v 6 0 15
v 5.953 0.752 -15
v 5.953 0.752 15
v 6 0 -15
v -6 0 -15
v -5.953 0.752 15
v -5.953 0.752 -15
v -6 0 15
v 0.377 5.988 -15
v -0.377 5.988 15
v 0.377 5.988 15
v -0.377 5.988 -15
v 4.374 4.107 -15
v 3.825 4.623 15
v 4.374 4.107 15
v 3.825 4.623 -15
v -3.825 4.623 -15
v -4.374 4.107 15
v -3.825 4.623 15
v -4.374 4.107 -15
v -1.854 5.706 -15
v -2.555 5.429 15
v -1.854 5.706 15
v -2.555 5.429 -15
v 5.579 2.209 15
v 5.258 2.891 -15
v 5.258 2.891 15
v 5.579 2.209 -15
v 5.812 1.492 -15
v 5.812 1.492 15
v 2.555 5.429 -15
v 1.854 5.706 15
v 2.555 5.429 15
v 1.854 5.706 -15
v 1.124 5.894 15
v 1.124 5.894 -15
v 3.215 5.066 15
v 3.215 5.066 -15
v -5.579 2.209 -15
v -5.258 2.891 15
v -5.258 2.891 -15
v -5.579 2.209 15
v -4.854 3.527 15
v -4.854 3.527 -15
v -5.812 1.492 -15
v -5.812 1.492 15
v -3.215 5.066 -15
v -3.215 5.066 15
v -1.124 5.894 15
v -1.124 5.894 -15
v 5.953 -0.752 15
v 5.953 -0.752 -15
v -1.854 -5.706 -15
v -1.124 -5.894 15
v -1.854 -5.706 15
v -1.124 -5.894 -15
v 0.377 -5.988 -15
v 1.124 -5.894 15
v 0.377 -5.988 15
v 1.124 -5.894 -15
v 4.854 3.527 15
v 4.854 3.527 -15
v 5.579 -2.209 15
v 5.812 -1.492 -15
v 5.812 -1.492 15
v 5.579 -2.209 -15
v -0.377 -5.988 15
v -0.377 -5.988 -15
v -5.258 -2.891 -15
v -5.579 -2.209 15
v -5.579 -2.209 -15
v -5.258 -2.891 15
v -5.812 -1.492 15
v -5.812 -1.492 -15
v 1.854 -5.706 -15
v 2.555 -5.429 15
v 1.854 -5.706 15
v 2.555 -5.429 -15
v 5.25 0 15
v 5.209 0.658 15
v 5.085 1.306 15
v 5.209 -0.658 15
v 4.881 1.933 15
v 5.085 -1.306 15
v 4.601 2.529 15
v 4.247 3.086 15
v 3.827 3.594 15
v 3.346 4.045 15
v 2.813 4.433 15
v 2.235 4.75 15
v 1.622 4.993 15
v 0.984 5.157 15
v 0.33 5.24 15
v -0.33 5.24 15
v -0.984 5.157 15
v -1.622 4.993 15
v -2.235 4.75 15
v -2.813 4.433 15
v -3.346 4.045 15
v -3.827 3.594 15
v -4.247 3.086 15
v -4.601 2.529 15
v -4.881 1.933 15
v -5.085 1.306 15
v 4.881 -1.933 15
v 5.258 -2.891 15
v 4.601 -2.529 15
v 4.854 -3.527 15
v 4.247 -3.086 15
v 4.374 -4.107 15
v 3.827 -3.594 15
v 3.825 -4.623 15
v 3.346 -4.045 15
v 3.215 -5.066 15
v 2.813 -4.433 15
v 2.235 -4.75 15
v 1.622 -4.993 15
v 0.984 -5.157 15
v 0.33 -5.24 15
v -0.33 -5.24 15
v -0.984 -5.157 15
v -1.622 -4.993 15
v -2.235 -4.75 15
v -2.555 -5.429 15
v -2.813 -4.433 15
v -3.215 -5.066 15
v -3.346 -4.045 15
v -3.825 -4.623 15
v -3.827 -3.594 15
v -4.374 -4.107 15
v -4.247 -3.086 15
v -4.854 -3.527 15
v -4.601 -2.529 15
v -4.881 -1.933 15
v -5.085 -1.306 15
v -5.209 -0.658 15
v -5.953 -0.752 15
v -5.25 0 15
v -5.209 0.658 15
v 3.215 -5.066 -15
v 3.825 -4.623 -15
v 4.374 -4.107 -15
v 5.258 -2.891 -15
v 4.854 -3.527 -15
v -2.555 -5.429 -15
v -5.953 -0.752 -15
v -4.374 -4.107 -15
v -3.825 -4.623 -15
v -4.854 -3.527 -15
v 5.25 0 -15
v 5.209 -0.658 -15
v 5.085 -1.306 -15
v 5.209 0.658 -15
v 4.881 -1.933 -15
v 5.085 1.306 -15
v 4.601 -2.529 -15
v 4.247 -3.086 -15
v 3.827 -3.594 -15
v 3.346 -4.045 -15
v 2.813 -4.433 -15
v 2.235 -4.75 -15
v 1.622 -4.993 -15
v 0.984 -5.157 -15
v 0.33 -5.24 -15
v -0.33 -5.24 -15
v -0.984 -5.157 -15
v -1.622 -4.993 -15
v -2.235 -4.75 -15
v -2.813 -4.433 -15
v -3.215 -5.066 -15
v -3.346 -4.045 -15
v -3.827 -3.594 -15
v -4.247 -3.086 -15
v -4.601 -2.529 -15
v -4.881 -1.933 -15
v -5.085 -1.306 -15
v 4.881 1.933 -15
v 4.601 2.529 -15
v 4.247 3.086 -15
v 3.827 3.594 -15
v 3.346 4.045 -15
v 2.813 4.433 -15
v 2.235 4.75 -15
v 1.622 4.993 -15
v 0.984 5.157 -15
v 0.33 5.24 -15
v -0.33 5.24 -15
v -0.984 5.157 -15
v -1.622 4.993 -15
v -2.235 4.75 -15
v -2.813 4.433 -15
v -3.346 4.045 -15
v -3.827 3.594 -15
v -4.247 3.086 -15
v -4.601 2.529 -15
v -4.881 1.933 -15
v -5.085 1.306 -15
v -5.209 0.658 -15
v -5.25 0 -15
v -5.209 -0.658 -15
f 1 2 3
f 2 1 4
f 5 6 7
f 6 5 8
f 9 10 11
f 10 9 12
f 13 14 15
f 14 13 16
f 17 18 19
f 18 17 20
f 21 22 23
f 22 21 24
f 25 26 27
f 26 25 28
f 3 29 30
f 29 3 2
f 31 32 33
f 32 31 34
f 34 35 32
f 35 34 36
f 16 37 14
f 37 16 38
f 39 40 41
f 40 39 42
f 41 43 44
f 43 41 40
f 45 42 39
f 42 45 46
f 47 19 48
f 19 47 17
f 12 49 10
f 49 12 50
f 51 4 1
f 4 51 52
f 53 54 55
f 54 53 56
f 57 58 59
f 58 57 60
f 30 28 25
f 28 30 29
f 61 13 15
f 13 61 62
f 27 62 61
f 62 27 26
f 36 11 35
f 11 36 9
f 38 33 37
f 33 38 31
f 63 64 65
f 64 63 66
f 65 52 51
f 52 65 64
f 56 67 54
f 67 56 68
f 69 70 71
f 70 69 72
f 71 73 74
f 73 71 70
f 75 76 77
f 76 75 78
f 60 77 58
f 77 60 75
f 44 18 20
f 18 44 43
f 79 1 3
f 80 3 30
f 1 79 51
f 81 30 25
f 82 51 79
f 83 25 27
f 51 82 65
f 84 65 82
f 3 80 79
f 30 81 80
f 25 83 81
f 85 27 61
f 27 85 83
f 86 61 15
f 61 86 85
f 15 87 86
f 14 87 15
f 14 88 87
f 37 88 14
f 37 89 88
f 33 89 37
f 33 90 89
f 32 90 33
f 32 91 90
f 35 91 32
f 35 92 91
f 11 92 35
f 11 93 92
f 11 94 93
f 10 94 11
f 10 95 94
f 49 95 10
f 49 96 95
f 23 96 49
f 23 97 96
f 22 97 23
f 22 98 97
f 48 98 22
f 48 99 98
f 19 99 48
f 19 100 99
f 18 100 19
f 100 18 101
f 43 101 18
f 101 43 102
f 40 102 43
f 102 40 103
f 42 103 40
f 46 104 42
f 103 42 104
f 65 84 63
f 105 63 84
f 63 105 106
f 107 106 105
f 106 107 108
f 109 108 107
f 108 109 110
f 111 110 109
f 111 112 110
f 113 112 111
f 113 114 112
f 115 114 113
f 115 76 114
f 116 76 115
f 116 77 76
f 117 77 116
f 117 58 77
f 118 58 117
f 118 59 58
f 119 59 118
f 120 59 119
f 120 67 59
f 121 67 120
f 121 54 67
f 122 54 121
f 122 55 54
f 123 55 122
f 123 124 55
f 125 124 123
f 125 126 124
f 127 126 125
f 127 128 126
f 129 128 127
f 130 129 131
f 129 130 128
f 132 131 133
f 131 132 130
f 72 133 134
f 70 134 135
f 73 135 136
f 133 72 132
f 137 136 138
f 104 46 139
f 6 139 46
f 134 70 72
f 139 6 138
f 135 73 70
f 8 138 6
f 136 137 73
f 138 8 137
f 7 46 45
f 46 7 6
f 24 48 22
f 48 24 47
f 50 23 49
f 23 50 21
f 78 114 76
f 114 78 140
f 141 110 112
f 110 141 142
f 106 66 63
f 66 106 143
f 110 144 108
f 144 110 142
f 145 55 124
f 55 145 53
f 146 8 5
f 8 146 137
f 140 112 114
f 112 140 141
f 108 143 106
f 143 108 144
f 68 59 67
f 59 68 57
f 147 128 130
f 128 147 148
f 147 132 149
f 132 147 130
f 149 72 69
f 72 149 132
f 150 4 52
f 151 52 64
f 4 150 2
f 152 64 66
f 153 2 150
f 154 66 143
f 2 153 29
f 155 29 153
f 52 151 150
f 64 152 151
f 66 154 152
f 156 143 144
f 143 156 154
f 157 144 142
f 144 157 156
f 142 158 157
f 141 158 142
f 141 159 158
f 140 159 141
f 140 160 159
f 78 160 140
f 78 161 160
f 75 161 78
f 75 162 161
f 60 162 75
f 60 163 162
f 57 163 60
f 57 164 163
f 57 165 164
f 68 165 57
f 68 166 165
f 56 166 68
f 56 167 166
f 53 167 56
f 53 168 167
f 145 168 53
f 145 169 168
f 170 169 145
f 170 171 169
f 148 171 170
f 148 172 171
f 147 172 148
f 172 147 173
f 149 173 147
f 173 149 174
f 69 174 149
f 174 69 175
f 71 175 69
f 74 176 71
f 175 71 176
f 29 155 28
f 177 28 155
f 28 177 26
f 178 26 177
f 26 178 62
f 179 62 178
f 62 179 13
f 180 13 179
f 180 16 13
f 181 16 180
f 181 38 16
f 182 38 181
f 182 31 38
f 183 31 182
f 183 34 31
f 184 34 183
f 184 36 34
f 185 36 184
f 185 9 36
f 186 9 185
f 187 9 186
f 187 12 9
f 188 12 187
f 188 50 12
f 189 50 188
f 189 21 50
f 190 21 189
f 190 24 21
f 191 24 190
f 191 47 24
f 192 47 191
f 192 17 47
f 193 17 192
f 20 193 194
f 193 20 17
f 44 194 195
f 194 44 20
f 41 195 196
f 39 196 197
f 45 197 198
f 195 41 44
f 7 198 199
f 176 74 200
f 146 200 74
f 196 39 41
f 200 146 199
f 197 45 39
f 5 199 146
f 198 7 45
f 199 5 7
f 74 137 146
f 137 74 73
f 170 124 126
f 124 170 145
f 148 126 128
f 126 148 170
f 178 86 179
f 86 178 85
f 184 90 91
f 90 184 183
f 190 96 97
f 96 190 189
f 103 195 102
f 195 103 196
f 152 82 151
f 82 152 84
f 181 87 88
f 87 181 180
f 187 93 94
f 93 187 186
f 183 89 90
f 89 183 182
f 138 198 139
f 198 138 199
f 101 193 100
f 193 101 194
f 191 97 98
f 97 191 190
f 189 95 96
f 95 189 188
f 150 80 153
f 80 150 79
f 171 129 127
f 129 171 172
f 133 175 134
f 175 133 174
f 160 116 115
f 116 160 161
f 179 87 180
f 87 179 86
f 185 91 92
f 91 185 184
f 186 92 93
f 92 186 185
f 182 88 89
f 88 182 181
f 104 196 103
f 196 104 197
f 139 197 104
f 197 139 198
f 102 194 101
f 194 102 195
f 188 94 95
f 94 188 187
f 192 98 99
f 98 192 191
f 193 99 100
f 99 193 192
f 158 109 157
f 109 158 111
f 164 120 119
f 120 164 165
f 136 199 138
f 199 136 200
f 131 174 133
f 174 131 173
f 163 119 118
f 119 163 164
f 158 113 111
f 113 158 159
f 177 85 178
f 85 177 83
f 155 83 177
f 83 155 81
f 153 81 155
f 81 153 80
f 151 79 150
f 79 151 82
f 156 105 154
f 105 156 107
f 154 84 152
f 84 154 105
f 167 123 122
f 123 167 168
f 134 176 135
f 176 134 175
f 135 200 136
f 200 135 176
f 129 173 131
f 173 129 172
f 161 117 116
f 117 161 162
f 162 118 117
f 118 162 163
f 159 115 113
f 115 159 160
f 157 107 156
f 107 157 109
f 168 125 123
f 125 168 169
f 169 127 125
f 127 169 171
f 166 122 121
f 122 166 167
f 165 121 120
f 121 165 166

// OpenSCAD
$fn = 50;


difference() {
	union() {
		translate(v = [0, 0, -15.0000000000]) {
			cylinder(h = 30, r = 6.0000000000);
		}
	}
	union() {
		translate(v = [0, 0, -100.0000000000]) {
			cylinder(h = 200, r = 5.2500000000);
		}
	}
}
